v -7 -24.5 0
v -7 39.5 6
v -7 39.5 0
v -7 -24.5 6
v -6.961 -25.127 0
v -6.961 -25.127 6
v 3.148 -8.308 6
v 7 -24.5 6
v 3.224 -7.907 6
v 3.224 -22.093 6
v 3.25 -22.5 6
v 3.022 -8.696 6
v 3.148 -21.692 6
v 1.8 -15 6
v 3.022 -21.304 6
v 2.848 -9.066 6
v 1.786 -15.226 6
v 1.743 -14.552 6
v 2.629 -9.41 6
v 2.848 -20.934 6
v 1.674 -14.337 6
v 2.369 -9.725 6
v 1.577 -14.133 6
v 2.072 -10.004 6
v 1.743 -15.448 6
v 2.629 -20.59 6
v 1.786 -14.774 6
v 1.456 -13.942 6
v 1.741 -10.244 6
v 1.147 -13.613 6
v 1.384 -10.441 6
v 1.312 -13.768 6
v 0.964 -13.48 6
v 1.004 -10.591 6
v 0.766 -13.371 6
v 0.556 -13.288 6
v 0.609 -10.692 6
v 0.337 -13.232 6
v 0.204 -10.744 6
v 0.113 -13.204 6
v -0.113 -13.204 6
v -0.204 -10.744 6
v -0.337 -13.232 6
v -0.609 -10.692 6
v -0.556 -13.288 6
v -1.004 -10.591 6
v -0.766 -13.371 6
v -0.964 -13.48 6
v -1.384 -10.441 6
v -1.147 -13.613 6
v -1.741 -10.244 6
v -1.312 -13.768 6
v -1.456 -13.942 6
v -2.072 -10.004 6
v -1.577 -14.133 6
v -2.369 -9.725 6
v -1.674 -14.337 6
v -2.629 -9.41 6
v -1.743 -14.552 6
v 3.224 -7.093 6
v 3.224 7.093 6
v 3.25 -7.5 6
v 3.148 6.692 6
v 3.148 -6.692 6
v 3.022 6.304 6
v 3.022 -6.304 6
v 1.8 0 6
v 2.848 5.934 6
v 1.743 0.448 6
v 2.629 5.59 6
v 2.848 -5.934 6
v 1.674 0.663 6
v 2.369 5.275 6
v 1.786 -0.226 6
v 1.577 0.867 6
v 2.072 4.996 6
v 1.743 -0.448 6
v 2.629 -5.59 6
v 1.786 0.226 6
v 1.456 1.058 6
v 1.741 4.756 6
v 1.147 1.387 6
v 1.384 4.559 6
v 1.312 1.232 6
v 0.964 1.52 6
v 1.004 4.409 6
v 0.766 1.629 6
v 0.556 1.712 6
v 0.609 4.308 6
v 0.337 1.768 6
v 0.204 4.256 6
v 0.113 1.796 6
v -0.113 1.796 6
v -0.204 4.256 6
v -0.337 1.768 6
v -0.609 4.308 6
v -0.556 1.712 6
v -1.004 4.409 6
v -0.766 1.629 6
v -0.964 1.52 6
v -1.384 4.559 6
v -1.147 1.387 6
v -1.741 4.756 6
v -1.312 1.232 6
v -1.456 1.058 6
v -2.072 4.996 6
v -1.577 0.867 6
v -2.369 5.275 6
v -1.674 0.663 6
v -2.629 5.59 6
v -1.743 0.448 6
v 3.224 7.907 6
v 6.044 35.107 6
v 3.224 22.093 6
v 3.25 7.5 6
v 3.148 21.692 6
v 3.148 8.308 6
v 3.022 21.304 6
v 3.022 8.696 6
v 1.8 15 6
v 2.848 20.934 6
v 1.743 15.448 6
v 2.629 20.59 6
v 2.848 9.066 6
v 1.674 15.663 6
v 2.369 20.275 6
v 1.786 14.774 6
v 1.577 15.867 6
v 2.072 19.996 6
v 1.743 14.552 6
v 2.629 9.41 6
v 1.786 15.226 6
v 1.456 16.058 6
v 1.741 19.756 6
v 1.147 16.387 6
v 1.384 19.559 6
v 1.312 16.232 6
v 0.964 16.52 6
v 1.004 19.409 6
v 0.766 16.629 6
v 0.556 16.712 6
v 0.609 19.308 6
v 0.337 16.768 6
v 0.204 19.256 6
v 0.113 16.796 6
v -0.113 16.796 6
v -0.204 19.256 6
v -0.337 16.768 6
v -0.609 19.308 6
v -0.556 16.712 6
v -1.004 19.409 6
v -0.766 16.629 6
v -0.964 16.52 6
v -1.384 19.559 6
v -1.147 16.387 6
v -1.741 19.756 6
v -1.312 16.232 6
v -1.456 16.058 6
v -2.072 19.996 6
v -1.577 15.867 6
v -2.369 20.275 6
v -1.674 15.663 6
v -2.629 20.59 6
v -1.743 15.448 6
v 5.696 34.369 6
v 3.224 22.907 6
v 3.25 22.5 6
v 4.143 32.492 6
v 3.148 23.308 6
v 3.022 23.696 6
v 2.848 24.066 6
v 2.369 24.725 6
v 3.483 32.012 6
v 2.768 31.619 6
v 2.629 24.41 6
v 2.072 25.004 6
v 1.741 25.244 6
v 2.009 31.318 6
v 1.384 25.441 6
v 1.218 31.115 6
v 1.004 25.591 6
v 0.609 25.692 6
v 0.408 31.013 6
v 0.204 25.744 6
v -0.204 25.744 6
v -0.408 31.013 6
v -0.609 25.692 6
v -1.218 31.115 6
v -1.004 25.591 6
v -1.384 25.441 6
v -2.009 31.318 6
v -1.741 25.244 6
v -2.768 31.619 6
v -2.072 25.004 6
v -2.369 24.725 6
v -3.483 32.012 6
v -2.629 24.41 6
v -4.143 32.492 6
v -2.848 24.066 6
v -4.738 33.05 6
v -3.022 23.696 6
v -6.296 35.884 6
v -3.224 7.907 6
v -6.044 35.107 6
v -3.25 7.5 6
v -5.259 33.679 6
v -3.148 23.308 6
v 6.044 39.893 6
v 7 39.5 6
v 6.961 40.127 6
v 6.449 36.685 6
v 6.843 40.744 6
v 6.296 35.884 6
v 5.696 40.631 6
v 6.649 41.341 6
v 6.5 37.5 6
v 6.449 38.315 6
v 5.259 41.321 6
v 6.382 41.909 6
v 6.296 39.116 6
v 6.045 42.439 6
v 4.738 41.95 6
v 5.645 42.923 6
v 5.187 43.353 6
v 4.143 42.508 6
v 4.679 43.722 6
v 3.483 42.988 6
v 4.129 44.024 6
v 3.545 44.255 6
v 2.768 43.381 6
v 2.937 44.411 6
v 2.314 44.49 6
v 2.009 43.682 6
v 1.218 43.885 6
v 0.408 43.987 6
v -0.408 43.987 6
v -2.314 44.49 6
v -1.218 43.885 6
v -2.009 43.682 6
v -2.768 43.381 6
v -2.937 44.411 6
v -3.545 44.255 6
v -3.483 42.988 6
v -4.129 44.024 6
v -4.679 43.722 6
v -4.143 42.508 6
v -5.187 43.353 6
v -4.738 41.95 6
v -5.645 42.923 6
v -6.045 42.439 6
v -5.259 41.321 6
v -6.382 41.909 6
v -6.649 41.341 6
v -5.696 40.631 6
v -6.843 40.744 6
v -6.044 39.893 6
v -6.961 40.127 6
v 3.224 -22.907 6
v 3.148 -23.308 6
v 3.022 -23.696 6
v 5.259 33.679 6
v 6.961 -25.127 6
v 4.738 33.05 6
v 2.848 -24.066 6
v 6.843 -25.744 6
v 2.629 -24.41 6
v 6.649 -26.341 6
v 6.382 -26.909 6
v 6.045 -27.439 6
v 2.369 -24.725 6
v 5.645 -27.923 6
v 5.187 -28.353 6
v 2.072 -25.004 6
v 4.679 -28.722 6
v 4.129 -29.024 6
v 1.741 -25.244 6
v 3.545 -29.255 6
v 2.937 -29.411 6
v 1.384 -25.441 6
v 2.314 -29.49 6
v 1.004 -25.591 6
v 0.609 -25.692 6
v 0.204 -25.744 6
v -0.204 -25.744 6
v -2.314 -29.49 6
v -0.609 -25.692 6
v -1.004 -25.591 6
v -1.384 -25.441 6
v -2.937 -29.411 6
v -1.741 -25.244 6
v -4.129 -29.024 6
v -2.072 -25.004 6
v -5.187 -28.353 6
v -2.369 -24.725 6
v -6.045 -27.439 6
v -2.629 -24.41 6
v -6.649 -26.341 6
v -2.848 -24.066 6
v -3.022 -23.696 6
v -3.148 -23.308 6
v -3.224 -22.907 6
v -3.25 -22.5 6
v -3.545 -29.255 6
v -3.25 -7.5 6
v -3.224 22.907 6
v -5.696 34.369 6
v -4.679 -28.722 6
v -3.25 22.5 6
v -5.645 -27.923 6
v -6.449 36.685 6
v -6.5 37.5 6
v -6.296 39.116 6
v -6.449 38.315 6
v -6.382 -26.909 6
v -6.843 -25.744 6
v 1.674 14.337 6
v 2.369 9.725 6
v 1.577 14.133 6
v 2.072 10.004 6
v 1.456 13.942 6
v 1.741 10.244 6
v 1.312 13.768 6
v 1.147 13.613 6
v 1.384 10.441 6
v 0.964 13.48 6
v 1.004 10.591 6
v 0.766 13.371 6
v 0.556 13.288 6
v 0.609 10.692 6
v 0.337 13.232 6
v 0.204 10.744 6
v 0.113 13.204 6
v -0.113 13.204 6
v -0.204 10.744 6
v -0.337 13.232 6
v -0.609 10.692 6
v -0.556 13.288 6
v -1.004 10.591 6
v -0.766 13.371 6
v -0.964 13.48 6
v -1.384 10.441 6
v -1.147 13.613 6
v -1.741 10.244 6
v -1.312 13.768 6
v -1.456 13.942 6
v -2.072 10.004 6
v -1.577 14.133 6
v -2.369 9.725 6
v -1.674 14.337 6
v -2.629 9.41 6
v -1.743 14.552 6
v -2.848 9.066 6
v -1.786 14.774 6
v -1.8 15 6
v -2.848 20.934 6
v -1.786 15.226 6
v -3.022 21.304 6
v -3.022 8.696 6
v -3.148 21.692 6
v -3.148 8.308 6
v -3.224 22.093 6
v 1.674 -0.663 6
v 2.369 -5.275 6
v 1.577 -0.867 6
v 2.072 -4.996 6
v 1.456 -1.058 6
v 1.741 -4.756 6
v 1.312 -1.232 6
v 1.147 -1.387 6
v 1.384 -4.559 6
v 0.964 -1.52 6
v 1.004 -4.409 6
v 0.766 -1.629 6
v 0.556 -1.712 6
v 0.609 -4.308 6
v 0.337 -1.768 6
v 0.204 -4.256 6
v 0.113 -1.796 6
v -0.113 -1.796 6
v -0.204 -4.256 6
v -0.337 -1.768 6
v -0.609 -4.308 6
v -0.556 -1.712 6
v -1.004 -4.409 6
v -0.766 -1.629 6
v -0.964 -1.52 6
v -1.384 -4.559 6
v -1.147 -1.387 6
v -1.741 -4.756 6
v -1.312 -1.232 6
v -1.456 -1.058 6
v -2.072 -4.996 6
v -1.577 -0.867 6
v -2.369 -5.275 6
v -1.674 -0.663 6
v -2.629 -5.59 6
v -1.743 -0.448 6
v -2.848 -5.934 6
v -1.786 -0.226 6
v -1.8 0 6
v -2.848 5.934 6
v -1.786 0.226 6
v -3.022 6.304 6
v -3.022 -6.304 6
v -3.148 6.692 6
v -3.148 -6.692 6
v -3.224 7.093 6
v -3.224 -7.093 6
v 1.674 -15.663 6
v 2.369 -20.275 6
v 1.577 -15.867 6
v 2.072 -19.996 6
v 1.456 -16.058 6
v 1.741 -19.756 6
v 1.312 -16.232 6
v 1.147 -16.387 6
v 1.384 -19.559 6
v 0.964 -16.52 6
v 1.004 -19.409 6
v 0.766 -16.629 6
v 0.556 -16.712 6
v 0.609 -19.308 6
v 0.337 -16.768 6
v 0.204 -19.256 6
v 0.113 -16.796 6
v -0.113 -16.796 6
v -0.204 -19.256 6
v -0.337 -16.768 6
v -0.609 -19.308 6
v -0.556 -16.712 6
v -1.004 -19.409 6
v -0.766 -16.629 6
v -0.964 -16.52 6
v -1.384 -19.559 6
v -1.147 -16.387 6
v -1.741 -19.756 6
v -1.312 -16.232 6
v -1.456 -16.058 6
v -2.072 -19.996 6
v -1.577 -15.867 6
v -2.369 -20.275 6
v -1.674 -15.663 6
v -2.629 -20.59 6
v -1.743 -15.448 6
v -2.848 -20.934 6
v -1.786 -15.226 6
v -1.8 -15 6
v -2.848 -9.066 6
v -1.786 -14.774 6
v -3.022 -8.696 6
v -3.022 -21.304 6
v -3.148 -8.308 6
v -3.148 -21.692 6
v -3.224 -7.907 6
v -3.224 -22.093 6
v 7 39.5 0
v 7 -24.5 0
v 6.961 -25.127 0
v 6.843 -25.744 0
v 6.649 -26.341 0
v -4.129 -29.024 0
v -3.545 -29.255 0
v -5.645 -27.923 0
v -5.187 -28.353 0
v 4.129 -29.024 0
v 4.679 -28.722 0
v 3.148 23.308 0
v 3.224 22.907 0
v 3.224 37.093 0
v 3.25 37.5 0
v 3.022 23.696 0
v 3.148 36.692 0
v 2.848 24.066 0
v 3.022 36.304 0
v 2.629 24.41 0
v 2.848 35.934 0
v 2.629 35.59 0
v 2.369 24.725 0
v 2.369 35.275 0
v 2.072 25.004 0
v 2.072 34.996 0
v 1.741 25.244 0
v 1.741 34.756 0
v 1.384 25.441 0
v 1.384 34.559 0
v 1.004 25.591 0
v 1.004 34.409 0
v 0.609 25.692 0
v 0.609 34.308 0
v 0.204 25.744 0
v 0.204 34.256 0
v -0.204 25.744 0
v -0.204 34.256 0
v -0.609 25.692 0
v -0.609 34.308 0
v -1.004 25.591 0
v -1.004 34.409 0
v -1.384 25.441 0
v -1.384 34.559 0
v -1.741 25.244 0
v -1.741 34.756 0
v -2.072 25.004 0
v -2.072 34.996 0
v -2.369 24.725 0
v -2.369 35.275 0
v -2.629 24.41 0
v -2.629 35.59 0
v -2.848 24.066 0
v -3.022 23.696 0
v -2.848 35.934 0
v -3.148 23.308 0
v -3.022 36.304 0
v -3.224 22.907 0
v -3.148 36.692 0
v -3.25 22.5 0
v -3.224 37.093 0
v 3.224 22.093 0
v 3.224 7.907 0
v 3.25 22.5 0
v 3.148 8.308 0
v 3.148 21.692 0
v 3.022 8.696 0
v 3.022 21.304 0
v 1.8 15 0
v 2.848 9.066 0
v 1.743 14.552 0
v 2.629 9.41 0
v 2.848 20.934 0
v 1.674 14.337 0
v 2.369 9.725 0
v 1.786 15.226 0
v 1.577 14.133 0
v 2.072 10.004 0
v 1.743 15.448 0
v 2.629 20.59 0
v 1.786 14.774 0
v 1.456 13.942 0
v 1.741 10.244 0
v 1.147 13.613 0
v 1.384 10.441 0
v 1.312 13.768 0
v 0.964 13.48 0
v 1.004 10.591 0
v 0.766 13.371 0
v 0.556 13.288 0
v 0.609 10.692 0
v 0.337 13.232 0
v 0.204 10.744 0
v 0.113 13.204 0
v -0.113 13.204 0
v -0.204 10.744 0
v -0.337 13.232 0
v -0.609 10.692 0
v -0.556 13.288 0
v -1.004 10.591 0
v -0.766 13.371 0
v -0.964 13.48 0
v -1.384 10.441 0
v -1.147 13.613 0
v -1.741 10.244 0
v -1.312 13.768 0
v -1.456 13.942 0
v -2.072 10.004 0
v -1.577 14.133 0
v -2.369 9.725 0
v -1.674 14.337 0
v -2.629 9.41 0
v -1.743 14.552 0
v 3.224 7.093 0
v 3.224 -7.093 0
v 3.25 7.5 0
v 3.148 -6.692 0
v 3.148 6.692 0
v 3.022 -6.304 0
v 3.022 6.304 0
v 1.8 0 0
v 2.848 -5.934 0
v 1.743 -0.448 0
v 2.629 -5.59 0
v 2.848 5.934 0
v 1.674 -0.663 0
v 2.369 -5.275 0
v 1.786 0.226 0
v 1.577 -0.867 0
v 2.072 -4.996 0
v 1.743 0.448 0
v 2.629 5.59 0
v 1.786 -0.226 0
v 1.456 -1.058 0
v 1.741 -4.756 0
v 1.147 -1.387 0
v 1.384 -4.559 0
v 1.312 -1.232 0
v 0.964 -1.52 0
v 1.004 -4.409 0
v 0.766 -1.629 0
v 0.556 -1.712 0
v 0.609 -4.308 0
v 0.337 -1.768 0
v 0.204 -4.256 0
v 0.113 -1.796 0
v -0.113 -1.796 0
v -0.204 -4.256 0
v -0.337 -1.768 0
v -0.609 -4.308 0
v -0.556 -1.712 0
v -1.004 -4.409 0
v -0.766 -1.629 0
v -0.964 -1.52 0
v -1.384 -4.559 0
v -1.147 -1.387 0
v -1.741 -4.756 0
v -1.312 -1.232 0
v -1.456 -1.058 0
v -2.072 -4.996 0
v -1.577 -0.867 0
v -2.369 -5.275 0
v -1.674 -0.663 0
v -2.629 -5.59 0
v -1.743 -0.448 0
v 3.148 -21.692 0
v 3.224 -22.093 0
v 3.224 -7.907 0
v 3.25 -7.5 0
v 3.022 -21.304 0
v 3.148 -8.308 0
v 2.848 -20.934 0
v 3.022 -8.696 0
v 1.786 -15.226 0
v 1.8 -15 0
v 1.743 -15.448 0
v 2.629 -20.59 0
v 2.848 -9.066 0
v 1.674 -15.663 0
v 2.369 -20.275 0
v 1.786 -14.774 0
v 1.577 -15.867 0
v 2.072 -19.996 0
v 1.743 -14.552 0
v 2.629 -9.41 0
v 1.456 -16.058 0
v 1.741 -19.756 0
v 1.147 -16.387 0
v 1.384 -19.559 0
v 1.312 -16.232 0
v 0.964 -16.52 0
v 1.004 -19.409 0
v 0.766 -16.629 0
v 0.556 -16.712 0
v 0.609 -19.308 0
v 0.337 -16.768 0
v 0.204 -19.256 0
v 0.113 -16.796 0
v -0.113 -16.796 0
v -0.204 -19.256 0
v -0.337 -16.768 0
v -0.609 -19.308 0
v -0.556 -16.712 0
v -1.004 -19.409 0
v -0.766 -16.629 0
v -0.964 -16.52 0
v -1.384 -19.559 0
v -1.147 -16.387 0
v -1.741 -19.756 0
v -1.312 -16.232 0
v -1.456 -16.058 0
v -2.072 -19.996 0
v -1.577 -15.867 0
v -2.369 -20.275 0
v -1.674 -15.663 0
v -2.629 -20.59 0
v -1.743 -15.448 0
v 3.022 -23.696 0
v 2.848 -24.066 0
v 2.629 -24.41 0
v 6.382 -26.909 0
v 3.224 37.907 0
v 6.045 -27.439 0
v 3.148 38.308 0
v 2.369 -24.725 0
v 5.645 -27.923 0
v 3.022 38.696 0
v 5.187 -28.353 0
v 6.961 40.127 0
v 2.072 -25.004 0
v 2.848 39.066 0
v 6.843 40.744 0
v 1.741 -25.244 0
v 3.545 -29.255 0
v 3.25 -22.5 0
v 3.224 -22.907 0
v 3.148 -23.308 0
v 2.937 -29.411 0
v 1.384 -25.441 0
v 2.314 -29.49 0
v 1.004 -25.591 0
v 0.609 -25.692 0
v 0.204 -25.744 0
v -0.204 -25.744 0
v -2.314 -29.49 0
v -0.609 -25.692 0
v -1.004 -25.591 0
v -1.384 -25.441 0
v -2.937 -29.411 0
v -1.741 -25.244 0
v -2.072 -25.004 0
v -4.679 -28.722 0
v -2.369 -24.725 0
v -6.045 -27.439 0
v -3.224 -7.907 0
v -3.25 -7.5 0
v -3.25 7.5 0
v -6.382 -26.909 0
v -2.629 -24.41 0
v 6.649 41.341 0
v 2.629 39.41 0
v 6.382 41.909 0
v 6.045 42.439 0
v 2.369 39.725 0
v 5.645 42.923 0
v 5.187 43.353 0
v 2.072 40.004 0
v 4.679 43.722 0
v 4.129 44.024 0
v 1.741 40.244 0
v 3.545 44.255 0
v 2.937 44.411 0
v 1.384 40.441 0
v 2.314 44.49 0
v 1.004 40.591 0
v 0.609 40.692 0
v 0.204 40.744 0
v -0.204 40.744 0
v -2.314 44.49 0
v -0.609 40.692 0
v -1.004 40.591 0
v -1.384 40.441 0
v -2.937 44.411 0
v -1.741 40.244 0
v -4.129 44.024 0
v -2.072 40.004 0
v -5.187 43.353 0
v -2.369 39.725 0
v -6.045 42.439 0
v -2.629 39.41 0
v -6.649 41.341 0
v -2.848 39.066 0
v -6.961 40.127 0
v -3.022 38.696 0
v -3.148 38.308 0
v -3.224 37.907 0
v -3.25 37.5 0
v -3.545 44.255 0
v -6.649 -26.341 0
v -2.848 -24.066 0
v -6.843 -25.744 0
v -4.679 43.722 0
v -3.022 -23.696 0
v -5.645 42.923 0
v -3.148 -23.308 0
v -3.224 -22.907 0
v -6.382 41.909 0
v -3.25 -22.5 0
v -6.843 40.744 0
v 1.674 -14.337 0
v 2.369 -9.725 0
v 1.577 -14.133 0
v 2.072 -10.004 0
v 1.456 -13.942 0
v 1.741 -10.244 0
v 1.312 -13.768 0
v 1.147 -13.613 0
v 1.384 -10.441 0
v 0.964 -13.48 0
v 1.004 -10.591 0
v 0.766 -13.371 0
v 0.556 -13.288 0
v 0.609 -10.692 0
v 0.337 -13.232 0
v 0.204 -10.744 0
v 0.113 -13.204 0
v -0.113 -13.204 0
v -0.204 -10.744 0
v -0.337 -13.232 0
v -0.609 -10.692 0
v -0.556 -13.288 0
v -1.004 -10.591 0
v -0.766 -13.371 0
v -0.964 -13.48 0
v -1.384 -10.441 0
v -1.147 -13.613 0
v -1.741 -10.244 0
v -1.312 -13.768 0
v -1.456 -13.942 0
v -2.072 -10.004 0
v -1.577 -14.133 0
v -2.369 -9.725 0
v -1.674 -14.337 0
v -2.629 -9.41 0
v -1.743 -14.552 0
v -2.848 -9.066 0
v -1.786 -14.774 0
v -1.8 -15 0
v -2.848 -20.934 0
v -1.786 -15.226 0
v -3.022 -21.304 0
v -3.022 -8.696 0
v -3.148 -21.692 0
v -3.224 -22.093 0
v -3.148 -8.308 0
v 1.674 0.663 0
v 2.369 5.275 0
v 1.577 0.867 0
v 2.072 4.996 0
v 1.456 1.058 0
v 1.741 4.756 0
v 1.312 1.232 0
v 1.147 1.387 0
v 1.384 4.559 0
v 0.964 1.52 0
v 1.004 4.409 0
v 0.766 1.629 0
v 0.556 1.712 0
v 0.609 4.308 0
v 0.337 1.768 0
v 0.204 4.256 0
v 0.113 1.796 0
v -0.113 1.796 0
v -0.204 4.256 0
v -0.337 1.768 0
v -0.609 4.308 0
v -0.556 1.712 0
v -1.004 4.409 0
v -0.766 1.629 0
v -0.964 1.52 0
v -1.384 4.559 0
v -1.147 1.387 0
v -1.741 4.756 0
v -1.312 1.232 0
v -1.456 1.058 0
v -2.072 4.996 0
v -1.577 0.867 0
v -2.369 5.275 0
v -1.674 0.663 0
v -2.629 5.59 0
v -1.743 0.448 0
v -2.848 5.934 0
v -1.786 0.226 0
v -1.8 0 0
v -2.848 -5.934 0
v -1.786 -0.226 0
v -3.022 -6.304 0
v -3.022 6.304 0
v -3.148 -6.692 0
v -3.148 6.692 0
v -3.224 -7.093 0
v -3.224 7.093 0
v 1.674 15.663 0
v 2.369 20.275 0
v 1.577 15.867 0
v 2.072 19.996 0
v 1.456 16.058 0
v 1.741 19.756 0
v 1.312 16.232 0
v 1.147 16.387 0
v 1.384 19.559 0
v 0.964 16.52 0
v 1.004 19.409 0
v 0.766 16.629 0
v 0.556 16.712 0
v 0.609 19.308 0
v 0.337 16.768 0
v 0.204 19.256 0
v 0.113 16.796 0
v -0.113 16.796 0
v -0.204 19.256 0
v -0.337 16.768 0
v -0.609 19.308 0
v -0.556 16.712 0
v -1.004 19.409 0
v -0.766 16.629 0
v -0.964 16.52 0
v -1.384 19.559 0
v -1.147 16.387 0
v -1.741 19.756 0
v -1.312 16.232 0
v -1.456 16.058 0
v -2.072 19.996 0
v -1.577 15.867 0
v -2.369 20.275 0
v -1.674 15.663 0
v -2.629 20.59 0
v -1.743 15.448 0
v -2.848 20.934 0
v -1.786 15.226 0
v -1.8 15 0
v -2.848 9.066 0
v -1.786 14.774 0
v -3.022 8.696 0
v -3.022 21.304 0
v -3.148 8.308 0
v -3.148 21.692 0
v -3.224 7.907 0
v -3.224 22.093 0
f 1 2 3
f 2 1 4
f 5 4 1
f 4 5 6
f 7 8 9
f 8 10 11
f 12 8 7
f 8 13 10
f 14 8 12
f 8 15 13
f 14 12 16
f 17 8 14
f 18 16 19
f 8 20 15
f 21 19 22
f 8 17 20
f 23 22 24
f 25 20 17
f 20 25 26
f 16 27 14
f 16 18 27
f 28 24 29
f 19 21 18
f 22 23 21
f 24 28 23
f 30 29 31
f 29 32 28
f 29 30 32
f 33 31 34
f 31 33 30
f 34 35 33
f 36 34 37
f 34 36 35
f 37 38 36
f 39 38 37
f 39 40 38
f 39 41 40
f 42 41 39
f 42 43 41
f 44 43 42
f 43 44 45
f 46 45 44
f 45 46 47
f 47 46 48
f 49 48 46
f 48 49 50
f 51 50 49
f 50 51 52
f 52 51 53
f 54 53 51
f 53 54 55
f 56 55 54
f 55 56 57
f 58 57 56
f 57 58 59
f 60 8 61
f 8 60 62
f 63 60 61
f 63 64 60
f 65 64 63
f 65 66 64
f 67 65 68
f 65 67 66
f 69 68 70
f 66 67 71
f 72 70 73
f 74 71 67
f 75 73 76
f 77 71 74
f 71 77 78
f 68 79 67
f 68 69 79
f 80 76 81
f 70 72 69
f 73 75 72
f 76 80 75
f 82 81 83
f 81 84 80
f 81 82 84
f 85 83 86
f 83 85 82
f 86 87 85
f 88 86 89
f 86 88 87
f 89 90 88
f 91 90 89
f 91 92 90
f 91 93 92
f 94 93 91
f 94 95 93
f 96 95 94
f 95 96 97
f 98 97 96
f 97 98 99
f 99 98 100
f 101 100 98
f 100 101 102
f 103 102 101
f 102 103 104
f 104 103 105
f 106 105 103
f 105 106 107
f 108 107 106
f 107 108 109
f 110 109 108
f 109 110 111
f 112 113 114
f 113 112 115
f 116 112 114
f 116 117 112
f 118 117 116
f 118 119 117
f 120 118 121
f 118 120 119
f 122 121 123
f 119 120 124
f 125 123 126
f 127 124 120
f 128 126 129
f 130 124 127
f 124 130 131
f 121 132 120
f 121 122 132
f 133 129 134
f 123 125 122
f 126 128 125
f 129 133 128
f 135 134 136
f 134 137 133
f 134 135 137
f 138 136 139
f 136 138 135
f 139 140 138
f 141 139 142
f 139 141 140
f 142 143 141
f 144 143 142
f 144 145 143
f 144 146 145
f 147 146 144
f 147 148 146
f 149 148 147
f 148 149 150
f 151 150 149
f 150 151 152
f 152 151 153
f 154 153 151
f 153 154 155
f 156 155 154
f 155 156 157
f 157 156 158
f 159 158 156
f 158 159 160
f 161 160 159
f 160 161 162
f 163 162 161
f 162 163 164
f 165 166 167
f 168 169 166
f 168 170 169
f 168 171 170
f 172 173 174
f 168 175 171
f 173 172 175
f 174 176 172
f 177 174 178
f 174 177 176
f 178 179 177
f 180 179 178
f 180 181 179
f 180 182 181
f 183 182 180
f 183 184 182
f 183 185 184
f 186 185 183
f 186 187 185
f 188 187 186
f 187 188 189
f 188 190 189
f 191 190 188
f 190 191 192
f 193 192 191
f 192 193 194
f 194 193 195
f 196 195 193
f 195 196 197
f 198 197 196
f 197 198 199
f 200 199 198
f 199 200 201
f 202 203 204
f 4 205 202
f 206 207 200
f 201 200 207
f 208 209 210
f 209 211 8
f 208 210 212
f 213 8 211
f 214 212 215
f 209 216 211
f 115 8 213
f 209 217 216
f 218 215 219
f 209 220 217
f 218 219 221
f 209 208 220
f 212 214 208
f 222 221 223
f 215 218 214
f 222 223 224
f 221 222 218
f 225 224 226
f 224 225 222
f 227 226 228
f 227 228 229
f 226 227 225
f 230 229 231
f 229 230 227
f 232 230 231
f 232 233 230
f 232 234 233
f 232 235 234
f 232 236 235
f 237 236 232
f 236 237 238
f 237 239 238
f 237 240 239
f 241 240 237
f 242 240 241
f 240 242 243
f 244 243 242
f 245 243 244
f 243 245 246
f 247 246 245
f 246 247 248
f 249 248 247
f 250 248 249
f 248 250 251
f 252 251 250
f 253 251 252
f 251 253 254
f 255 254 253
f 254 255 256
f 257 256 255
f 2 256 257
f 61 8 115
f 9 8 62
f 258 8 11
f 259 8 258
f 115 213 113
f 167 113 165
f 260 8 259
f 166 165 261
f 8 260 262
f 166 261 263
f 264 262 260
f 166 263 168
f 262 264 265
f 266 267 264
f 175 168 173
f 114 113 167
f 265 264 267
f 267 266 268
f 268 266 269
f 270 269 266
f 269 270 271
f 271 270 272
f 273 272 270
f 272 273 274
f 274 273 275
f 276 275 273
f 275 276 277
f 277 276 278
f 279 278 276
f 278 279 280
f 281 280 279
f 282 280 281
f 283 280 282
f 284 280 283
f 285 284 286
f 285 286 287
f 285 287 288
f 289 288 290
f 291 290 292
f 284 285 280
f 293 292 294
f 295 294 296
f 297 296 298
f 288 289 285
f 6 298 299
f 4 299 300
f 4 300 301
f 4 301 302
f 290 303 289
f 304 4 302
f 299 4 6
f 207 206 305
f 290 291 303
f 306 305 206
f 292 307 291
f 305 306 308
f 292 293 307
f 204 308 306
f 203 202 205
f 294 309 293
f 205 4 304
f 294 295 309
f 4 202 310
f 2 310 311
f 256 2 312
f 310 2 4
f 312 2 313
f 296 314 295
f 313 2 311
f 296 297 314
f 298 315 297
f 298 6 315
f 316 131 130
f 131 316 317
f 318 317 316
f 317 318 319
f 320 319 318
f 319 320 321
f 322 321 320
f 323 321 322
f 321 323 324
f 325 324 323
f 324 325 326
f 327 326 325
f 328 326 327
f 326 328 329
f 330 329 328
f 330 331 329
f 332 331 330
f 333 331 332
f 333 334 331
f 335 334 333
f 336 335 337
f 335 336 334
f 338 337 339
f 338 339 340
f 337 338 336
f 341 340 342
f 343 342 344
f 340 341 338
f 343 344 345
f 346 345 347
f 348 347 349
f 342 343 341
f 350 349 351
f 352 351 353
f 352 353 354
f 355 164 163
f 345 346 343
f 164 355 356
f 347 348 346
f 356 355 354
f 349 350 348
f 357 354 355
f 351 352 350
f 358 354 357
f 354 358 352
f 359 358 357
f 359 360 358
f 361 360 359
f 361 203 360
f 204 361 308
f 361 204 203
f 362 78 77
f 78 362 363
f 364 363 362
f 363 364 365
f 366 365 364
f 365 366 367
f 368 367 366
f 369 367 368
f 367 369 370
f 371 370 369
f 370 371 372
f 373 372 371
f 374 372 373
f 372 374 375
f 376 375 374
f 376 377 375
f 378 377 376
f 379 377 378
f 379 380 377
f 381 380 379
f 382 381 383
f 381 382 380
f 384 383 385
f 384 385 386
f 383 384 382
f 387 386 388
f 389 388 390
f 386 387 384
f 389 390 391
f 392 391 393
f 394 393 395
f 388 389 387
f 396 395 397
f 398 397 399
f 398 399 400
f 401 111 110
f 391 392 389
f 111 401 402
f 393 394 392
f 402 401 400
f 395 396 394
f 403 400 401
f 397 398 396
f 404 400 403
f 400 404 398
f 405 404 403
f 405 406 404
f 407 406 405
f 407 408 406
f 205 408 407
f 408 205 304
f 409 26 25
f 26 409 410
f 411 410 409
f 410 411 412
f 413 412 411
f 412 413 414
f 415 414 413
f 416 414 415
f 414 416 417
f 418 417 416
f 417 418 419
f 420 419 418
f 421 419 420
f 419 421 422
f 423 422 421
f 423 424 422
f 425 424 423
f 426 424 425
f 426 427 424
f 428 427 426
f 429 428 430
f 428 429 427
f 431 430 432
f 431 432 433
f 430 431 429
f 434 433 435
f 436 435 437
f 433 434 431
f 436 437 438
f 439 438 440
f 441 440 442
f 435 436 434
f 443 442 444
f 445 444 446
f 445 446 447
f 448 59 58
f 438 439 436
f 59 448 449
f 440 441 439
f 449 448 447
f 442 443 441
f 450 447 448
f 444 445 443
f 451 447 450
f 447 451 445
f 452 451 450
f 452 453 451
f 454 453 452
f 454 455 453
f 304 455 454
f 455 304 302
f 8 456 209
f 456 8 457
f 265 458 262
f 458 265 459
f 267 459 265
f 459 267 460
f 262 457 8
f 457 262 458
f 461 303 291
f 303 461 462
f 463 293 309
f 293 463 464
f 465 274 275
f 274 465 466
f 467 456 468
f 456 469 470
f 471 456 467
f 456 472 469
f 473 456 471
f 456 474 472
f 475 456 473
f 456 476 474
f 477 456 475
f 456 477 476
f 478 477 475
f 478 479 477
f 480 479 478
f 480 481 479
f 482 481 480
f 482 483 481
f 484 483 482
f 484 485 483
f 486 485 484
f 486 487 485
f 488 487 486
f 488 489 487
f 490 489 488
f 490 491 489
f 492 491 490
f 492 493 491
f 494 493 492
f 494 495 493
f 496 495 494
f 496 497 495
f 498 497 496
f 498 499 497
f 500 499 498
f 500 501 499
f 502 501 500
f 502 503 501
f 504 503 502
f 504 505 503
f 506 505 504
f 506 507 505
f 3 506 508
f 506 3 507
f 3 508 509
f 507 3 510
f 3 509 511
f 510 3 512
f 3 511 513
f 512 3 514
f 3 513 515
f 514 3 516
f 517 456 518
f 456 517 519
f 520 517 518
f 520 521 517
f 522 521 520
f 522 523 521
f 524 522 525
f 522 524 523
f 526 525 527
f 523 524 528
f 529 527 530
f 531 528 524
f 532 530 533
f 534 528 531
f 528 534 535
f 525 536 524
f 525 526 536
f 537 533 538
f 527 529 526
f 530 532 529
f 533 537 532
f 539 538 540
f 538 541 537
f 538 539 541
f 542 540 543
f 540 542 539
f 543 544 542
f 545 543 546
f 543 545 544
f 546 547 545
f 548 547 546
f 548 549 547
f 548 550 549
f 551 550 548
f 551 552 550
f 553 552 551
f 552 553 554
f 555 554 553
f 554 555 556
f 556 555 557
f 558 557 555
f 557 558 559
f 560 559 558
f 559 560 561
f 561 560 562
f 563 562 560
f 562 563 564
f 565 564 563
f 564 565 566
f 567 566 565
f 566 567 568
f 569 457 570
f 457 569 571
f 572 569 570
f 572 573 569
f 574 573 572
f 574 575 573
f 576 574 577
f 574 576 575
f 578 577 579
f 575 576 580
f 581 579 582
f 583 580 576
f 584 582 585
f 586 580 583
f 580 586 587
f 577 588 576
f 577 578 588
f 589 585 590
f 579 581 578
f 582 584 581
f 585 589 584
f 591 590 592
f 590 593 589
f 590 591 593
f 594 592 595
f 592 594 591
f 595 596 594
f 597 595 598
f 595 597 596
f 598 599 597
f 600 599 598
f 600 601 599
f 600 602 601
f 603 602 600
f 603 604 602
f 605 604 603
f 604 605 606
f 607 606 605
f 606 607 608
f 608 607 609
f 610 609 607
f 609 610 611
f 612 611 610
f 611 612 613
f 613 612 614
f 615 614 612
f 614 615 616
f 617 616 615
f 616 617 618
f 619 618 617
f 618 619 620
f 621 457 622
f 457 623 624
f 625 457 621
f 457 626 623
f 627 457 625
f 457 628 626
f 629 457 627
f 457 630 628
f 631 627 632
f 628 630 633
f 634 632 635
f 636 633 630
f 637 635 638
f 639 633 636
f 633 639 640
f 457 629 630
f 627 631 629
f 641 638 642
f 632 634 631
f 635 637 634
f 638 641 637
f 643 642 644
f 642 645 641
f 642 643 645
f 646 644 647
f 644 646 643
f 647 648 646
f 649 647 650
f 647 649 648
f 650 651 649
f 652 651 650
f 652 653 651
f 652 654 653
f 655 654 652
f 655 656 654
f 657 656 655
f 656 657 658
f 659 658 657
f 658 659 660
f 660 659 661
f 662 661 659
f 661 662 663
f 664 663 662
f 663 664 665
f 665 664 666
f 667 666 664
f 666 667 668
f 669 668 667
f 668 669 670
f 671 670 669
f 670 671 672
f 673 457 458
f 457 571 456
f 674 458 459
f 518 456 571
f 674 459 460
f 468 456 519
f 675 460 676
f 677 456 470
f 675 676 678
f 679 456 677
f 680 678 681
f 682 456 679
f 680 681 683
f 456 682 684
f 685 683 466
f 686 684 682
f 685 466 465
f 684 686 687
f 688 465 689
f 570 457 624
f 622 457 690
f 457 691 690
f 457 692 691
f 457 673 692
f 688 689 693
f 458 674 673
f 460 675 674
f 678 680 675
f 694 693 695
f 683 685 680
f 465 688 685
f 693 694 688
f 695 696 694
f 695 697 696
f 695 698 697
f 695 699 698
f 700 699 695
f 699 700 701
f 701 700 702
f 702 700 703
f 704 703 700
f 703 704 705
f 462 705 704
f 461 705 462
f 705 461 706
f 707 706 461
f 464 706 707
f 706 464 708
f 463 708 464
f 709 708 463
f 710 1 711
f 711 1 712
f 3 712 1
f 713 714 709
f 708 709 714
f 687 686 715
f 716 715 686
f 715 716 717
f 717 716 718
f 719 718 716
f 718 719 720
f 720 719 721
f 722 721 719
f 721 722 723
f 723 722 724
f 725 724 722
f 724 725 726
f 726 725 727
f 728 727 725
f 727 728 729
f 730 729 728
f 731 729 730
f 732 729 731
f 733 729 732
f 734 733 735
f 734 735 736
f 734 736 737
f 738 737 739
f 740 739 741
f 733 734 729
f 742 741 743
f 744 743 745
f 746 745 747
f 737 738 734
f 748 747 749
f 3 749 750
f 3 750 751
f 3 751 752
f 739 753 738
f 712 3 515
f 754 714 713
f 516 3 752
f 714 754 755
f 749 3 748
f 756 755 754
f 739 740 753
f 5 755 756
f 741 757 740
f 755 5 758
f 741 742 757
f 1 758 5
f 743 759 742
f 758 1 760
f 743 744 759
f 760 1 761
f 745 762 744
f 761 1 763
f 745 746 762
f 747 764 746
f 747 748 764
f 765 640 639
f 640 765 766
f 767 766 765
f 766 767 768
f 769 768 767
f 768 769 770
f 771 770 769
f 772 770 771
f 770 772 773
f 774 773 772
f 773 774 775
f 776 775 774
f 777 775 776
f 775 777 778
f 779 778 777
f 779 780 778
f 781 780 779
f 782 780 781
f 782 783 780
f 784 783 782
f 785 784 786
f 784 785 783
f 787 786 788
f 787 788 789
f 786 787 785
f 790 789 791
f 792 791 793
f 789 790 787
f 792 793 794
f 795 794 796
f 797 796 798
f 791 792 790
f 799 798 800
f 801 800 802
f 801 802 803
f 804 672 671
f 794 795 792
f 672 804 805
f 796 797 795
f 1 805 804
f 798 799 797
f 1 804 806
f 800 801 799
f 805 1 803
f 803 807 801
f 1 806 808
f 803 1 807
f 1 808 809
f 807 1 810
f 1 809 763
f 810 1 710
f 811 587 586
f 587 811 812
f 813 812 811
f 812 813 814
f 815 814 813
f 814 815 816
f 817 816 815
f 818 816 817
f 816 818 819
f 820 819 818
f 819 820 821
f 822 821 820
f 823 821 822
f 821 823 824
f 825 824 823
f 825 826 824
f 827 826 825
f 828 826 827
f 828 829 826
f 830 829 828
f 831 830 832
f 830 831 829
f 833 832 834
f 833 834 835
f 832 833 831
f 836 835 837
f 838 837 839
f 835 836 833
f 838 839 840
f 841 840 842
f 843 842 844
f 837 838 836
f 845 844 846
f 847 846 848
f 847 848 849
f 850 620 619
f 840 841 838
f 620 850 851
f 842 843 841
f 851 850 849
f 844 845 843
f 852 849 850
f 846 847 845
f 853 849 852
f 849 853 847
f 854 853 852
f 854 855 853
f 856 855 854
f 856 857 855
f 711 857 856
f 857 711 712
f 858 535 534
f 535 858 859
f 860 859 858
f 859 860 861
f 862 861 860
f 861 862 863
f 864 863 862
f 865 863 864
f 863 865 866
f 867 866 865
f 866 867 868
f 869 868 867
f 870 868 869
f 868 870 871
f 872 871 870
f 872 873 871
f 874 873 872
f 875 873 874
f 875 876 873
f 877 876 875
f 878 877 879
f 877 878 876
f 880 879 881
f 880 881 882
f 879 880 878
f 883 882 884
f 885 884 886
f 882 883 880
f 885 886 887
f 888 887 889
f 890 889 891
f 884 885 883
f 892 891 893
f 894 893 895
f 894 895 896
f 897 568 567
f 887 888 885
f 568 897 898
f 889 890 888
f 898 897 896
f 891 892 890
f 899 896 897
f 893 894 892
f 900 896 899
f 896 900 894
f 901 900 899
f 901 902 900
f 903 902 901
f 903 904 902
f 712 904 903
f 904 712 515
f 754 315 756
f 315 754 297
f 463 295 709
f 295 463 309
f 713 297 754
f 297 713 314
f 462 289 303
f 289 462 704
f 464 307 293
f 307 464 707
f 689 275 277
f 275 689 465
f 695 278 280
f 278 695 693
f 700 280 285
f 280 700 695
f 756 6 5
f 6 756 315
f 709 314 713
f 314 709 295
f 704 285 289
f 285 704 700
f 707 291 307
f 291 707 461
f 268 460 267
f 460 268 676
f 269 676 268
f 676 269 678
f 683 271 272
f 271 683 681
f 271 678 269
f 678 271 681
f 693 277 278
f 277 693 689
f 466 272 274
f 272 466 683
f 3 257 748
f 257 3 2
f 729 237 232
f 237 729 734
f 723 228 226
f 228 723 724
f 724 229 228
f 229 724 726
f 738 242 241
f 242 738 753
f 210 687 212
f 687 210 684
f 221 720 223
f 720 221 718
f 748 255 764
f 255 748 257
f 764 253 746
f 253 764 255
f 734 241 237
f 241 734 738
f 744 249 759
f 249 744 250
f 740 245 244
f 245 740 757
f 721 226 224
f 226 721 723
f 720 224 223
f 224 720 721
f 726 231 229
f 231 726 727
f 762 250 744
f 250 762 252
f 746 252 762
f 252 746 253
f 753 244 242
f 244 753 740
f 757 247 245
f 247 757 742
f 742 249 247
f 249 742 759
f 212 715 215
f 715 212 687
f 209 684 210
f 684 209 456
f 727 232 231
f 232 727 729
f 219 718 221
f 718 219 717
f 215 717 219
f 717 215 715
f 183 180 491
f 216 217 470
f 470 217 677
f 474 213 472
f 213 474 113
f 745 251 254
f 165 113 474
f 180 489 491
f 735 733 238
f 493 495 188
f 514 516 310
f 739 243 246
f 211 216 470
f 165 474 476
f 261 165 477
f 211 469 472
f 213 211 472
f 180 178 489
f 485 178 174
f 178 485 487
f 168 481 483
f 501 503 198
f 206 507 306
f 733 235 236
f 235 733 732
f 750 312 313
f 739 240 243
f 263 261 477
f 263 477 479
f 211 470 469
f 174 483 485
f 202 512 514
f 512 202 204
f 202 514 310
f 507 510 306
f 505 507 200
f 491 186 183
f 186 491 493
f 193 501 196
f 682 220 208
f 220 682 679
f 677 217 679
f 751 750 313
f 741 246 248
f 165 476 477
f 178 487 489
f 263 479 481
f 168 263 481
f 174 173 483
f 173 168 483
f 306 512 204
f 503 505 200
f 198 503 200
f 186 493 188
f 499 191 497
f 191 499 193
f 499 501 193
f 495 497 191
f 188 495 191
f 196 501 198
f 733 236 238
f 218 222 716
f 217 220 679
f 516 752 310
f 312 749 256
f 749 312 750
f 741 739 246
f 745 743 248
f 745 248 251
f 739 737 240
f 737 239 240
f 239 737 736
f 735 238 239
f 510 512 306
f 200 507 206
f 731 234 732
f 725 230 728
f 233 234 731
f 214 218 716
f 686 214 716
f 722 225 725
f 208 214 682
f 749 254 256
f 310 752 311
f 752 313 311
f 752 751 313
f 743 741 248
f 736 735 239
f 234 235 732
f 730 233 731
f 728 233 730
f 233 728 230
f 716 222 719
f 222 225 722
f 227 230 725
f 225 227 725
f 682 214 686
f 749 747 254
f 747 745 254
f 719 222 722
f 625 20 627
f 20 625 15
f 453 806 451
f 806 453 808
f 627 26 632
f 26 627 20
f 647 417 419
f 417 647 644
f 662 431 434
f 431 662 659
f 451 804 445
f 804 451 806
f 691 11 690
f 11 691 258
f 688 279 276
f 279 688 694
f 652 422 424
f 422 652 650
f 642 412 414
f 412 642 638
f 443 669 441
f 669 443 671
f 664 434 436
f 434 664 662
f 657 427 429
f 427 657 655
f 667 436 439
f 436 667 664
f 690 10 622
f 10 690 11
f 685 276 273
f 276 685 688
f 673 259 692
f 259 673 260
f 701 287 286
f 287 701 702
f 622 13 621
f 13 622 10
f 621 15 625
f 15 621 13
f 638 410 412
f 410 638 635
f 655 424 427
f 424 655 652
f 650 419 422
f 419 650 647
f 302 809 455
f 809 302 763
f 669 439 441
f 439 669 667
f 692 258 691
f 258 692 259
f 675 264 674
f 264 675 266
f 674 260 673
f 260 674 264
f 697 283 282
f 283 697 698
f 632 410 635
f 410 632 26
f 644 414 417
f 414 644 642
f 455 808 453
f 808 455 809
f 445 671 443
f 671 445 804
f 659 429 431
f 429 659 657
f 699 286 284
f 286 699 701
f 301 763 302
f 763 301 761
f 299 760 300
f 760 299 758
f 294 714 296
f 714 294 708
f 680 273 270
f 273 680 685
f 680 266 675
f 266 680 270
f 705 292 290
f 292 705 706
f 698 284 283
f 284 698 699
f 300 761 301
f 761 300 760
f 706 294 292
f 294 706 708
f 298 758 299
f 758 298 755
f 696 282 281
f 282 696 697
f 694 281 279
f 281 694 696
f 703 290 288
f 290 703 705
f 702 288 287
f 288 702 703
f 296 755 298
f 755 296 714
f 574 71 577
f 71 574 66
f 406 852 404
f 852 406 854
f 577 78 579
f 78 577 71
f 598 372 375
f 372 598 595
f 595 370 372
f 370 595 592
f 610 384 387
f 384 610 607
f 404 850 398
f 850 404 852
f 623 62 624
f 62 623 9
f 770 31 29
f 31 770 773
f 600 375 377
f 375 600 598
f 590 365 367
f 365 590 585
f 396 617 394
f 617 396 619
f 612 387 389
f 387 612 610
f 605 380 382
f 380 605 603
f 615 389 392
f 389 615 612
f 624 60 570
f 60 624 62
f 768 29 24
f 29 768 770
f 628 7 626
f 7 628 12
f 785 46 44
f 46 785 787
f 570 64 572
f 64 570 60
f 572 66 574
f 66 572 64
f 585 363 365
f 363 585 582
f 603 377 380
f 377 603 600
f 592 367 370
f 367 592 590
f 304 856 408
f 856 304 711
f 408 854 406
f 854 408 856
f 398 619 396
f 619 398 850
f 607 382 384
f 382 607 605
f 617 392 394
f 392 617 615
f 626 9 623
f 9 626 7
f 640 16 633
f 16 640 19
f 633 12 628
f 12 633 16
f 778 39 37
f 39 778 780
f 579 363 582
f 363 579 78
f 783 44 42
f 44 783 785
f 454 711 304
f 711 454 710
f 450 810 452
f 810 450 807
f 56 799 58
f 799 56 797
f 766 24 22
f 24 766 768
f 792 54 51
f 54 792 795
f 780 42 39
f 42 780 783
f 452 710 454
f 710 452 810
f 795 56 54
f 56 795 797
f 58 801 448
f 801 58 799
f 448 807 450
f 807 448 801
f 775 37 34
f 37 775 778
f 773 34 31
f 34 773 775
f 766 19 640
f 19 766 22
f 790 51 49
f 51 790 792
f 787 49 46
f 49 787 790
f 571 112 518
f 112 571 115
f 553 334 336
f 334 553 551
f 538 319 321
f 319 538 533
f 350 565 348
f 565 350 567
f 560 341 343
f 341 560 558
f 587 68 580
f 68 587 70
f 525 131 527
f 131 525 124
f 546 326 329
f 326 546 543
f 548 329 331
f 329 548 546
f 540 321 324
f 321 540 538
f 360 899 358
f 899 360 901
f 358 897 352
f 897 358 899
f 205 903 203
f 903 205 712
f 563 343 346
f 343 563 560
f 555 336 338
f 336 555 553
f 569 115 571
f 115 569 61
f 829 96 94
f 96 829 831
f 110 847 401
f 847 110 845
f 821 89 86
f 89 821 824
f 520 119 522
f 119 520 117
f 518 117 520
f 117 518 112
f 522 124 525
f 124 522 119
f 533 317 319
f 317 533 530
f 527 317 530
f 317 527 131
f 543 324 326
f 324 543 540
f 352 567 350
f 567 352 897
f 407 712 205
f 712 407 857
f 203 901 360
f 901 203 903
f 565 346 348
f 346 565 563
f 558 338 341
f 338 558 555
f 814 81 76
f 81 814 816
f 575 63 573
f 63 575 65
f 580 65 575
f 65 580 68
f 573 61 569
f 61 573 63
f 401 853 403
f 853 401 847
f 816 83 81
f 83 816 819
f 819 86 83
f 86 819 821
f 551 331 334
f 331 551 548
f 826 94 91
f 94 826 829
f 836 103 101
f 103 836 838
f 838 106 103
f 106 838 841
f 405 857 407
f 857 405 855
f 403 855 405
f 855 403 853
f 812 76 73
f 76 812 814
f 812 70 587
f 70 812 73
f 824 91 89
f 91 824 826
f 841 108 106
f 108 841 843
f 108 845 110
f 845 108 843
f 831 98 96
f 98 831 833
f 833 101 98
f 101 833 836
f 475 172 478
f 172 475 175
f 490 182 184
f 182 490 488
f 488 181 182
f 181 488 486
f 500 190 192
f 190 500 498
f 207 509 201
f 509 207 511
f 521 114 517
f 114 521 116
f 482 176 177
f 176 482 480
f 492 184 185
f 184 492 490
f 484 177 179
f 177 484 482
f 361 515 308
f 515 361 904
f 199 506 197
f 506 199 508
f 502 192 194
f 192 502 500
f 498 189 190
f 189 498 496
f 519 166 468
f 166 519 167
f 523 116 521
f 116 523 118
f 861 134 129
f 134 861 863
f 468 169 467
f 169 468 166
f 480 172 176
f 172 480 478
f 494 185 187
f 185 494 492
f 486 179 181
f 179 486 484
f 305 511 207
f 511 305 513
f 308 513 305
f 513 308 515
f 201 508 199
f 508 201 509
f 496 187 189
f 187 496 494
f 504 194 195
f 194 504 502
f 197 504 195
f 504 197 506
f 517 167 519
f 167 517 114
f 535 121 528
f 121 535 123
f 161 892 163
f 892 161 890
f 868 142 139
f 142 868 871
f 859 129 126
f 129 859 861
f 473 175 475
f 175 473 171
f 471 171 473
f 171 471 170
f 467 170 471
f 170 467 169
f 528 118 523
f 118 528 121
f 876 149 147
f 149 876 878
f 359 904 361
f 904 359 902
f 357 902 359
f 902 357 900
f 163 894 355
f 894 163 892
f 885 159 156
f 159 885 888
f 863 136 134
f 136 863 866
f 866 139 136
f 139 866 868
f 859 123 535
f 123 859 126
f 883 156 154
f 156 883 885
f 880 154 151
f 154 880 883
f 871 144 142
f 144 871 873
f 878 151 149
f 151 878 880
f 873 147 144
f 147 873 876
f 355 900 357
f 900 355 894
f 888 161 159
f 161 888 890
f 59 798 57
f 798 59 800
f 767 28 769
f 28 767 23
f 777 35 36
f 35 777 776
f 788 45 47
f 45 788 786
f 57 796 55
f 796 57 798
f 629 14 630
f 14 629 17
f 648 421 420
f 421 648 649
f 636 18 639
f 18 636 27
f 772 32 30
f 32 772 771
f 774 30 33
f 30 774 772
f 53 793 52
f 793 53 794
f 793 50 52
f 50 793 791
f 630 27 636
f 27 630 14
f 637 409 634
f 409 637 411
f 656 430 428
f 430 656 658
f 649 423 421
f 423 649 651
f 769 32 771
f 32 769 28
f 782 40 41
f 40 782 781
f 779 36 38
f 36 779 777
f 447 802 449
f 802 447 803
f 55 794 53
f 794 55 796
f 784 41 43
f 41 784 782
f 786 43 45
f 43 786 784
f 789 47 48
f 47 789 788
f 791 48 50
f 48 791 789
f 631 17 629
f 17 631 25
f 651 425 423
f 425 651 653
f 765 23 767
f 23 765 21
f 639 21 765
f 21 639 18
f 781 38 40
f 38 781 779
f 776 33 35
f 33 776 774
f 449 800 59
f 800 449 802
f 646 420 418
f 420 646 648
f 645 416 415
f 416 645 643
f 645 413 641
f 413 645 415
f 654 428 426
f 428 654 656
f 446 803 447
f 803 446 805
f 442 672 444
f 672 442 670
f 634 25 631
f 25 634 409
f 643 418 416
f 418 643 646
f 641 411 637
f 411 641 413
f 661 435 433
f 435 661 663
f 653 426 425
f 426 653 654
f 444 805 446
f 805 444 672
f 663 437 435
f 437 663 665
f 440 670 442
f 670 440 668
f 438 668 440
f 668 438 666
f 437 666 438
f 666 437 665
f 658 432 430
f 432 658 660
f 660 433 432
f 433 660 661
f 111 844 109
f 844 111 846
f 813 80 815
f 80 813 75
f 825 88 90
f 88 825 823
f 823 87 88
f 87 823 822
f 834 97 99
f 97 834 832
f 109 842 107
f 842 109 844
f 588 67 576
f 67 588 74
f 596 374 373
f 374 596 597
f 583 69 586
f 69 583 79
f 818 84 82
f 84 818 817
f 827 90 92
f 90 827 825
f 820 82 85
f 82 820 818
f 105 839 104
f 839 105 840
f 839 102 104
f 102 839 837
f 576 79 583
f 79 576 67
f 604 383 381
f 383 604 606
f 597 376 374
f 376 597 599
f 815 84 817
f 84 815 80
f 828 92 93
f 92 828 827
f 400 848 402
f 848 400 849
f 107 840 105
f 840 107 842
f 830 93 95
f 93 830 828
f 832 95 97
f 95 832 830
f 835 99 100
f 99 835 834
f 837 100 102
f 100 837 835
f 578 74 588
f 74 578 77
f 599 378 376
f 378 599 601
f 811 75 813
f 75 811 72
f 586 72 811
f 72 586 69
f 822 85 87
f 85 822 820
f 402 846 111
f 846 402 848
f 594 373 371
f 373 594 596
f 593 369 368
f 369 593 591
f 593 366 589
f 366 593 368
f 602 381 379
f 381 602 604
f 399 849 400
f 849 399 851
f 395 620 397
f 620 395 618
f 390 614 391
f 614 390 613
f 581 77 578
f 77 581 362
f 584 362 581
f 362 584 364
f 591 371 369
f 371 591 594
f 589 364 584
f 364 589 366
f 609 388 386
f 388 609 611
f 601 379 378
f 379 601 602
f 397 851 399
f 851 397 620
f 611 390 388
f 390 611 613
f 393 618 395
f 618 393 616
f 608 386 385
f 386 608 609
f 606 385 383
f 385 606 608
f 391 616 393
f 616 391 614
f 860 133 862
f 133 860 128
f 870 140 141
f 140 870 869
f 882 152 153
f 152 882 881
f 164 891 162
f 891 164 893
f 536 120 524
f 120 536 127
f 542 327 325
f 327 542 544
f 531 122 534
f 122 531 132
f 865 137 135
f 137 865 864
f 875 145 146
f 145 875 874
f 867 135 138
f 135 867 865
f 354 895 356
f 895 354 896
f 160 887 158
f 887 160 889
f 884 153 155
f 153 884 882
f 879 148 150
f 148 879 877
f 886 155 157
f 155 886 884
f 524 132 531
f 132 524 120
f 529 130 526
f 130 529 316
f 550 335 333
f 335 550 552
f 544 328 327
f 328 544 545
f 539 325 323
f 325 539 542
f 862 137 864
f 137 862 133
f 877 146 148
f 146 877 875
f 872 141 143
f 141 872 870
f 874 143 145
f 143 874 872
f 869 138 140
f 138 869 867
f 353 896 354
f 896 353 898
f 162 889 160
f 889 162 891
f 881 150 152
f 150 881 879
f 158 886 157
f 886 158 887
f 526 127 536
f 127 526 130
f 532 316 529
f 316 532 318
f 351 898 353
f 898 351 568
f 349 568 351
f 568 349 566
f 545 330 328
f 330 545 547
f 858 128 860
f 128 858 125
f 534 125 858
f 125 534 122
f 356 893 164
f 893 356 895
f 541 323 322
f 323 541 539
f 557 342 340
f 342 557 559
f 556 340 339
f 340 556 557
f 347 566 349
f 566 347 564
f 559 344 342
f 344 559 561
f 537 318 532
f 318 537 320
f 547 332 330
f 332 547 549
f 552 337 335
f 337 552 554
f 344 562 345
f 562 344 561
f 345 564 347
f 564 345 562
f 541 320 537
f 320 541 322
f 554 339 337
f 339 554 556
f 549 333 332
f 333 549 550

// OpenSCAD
$fn = 50;


difference() {
	union() {
		hull() {
			translate(v = [-2.0000000000, 24.5000000000, 0]) {
				cylinder(h = 6, r = 5);
			}
			translate(v = [2.0000000000, 24.5000000000, 0]) {
				cylinder(h = 6, r = 5);
			}
			translate(v = [-2.0000000000, -24.5000000000, 0]) {
				cylinder(h = 6, r = 5);
			}
			translate(v = [2.0000000000, -24.5000000000, 0]) {
				cylinder(h = 6, r = 5);
			}
		}
		translate(v = [0.0000000000, 30.0000000000, 0]) {
			hull() {
				translate(v = [-2.0000000000, 9.5000000000, 0]) {
					cylinder(h = 6, r = 5);
				}
				translate(v = [2.0000000000, 9.5000000000, 0]) {
					cylinder(h = 6, r = 5);
				}
				translate(v = [-2.0000000000, -9.5000000000, 0]) {
					cylinder(h = 6, r = 5);
				}
				translate(v = [2.0000000000, -9.5000000000, 0]) {
					cylinder(h = 6, r = 5);
				}
			}
		}
		translate(v = [0.0000000000, 30.0000000000, 0]) {
			hull() {
				translate(v = [-2.0000000000, 9.5000000000, 0]) {
					cylinder(h = 6, r = 5);
				}
				translate(v = [2.0000000000, 9.5000000000, 0]) {
					cylinder(h = 6, r = 5);
				}
				translate(v = [-2.0000000000, -9.5000000000, 0]) {
					cylinder(h = 6, r = 5);
				}
				translate(v = [2.0000000000, -9.5000000000, 0]) {
					cylinder(h = 6, r = 5);
				}
			}
		}
	}
	union() {
		translate(v = [0.0000000000, 37.5000000000, 6]) {
			rotate(a = [0, 0, 0]) {
				difference() {
					union() {
						#translate(v = [0, 0, -6.0000000000]) {
							cylinder(h = 6, r = 2.2500000000);
						}
						#translate(v = [0, 0, -6]) {
							cylinder(h = 6, r1 = 3.2500000000, r2 = 6.5000000000);
						}
						#translate(v = [0, 0, -6.0000000000]) {
							cylinder(h = 6, r = 3.2500000000);
						}
						#translate(v = [0, 0, -6.0000000000]) {
							cylinder(h = 6, r = 2.2500000000);
						}
					}
					union();
				}
			}
		}
		translate(v = [0.0000000000, 37.5000000000, 6]) {
			rotate(a = [0, 0, 0]) {
				difference() {
					union() {
						#translate(v = [0, 0, -6.0000000000]) {
							cylinder(h = 6, r = 2.2500000000);
						}
						#translate(v = [0, 0, -6]) {
							cylinder(h = 6, r1 = 3.2500000000, r2 = 6.5000000000);
						}
						#translate(v = [0, 0, -6.0000000000]) {
							cylinder(h = 6, r = 3.2500000000);
						}
						#translate(v = [0, 0, -6.0000000000]) {
							cylinder(h = 6, r = 2.2500000000);
						}
					}
					union();
				}
			}
		}
		translate(v = [0.0000000000, -22.5000000000, 0]) {
			translate(v = [0, 0, -100]) {
				cylinder(h = 200, r = 3.2500000000);
			}
		}
		translate(v = [0.0000000000, -7.5000000000, 0]) {
			translate(v = [0, 0, -100]) {
				cylinder(h = 200, r = 3.2500000000);
			}
		}
		translate(v = [0.0000000000, 7.5000000000, 0]) {
			translate(v = [0, 0, -100]) {
				cylinder(h = 200, r = 3.2500000000);
			}
		}
		translate(v = [0.0000000000, 22.5000000000, 0]) {
			translate(v = [0, 0, -100]) {
				cylinder(h = 200, r = 3.2500000000);
			}
		}
		translate(v = [0.0000000000, -22.5000000000, 0]) {
			translate(v = [0, 0, -100]) {
				cylinder(h = 200, r = 1.8000000000);
			}
		}
		translate(v = [0.0000000000, -15.0000000000, 0]) {
			translate(v = [0, 0, -100]) {
				cylinder(h = 200, r = 1.8000000000);
			}
		}
		translate(v = [0.0000000000, -7.5000000000, 0]) {
			translate(v = [0, 0, -100]) {
				cylinder(h = 200, r = 1.8000000000);
			}
		}
		translate(v = [0, 0, -100]) {
			cylinder(h = 200, r = 1.8000000000);
		}
		translate(v = [0.0000000000, 7.5000000000, 0]) {
			translate(v = [0, 0, -100]) {
				cylinder(h = 200, r = 1.8000000000);
			}
		}
		translate(v = [0.0000000000, 15.0000000000, 0]) {
			translate(v = [0, 0, -100]) {
				cylinder(h = 200, r = 1.8000000000);
			}
		}
		translate(v = [0.0000000000, 22.5000000000, 0]) {
			translate(v = [0, 0, -100]) {
				cylinder(h = 200, r = 1.8000000000);
			}
		}
	}
}
